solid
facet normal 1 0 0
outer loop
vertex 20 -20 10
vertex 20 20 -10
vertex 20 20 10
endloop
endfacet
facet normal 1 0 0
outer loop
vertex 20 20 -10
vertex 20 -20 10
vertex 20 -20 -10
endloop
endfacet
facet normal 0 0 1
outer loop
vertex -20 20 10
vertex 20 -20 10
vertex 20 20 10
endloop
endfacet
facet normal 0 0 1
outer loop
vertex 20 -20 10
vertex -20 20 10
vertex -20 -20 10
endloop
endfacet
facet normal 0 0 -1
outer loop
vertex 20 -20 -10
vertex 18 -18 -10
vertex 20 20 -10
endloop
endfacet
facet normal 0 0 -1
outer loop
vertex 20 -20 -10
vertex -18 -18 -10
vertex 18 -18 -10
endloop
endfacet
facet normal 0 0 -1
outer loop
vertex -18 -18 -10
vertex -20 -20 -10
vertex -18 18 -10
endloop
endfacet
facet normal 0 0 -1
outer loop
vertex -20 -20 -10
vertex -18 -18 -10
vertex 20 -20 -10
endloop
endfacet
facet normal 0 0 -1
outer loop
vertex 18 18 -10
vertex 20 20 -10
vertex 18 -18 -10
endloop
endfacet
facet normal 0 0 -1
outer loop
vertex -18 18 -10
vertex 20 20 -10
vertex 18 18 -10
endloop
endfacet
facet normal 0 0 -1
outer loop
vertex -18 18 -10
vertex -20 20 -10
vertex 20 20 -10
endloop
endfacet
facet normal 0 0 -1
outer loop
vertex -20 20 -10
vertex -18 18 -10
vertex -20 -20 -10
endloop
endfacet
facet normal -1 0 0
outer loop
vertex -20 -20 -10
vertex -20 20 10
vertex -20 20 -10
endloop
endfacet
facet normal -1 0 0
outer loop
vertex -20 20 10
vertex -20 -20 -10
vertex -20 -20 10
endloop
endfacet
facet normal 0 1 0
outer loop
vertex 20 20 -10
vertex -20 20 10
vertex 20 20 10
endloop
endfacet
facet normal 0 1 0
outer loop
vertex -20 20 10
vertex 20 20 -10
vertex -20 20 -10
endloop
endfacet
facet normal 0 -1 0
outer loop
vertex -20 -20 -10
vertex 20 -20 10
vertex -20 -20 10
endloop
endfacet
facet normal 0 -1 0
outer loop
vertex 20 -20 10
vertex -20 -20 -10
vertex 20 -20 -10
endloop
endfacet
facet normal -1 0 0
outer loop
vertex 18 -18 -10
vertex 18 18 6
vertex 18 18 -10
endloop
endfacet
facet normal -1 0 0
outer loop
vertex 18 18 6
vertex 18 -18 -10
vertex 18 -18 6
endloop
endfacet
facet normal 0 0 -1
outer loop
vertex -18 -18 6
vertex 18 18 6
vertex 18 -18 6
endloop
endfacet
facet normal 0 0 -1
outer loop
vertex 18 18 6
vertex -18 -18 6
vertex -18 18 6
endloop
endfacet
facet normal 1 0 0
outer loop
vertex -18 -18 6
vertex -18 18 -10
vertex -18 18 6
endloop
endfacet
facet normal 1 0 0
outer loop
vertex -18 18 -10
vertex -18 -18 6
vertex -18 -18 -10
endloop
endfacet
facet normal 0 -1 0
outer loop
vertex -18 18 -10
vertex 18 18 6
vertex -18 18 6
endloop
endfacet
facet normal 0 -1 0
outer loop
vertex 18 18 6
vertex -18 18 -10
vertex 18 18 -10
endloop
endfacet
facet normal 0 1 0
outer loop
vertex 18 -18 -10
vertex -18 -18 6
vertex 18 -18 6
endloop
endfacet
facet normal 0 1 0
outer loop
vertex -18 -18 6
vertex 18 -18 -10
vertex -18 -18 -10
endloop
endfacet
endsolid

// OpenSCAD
// Parameters for the square box
box_size = [40, 40, 20]; // Dimensions: Width, Depth, Height
wall_thickness = 2;      // Thickness of the walls

// Create the solid outer box
difference() {
    cube(box_size, center = true); // The outer box
    
    // Adjusted hollow inside to maintain uniform symmetry
    translate([0, 0, -wall_thickness])
        cube([box_size[0] - 2*wall_thickness, box_size[1] - 2*wall_thickness, box_size[2] - 2*wall_thickness], center = true);
}
